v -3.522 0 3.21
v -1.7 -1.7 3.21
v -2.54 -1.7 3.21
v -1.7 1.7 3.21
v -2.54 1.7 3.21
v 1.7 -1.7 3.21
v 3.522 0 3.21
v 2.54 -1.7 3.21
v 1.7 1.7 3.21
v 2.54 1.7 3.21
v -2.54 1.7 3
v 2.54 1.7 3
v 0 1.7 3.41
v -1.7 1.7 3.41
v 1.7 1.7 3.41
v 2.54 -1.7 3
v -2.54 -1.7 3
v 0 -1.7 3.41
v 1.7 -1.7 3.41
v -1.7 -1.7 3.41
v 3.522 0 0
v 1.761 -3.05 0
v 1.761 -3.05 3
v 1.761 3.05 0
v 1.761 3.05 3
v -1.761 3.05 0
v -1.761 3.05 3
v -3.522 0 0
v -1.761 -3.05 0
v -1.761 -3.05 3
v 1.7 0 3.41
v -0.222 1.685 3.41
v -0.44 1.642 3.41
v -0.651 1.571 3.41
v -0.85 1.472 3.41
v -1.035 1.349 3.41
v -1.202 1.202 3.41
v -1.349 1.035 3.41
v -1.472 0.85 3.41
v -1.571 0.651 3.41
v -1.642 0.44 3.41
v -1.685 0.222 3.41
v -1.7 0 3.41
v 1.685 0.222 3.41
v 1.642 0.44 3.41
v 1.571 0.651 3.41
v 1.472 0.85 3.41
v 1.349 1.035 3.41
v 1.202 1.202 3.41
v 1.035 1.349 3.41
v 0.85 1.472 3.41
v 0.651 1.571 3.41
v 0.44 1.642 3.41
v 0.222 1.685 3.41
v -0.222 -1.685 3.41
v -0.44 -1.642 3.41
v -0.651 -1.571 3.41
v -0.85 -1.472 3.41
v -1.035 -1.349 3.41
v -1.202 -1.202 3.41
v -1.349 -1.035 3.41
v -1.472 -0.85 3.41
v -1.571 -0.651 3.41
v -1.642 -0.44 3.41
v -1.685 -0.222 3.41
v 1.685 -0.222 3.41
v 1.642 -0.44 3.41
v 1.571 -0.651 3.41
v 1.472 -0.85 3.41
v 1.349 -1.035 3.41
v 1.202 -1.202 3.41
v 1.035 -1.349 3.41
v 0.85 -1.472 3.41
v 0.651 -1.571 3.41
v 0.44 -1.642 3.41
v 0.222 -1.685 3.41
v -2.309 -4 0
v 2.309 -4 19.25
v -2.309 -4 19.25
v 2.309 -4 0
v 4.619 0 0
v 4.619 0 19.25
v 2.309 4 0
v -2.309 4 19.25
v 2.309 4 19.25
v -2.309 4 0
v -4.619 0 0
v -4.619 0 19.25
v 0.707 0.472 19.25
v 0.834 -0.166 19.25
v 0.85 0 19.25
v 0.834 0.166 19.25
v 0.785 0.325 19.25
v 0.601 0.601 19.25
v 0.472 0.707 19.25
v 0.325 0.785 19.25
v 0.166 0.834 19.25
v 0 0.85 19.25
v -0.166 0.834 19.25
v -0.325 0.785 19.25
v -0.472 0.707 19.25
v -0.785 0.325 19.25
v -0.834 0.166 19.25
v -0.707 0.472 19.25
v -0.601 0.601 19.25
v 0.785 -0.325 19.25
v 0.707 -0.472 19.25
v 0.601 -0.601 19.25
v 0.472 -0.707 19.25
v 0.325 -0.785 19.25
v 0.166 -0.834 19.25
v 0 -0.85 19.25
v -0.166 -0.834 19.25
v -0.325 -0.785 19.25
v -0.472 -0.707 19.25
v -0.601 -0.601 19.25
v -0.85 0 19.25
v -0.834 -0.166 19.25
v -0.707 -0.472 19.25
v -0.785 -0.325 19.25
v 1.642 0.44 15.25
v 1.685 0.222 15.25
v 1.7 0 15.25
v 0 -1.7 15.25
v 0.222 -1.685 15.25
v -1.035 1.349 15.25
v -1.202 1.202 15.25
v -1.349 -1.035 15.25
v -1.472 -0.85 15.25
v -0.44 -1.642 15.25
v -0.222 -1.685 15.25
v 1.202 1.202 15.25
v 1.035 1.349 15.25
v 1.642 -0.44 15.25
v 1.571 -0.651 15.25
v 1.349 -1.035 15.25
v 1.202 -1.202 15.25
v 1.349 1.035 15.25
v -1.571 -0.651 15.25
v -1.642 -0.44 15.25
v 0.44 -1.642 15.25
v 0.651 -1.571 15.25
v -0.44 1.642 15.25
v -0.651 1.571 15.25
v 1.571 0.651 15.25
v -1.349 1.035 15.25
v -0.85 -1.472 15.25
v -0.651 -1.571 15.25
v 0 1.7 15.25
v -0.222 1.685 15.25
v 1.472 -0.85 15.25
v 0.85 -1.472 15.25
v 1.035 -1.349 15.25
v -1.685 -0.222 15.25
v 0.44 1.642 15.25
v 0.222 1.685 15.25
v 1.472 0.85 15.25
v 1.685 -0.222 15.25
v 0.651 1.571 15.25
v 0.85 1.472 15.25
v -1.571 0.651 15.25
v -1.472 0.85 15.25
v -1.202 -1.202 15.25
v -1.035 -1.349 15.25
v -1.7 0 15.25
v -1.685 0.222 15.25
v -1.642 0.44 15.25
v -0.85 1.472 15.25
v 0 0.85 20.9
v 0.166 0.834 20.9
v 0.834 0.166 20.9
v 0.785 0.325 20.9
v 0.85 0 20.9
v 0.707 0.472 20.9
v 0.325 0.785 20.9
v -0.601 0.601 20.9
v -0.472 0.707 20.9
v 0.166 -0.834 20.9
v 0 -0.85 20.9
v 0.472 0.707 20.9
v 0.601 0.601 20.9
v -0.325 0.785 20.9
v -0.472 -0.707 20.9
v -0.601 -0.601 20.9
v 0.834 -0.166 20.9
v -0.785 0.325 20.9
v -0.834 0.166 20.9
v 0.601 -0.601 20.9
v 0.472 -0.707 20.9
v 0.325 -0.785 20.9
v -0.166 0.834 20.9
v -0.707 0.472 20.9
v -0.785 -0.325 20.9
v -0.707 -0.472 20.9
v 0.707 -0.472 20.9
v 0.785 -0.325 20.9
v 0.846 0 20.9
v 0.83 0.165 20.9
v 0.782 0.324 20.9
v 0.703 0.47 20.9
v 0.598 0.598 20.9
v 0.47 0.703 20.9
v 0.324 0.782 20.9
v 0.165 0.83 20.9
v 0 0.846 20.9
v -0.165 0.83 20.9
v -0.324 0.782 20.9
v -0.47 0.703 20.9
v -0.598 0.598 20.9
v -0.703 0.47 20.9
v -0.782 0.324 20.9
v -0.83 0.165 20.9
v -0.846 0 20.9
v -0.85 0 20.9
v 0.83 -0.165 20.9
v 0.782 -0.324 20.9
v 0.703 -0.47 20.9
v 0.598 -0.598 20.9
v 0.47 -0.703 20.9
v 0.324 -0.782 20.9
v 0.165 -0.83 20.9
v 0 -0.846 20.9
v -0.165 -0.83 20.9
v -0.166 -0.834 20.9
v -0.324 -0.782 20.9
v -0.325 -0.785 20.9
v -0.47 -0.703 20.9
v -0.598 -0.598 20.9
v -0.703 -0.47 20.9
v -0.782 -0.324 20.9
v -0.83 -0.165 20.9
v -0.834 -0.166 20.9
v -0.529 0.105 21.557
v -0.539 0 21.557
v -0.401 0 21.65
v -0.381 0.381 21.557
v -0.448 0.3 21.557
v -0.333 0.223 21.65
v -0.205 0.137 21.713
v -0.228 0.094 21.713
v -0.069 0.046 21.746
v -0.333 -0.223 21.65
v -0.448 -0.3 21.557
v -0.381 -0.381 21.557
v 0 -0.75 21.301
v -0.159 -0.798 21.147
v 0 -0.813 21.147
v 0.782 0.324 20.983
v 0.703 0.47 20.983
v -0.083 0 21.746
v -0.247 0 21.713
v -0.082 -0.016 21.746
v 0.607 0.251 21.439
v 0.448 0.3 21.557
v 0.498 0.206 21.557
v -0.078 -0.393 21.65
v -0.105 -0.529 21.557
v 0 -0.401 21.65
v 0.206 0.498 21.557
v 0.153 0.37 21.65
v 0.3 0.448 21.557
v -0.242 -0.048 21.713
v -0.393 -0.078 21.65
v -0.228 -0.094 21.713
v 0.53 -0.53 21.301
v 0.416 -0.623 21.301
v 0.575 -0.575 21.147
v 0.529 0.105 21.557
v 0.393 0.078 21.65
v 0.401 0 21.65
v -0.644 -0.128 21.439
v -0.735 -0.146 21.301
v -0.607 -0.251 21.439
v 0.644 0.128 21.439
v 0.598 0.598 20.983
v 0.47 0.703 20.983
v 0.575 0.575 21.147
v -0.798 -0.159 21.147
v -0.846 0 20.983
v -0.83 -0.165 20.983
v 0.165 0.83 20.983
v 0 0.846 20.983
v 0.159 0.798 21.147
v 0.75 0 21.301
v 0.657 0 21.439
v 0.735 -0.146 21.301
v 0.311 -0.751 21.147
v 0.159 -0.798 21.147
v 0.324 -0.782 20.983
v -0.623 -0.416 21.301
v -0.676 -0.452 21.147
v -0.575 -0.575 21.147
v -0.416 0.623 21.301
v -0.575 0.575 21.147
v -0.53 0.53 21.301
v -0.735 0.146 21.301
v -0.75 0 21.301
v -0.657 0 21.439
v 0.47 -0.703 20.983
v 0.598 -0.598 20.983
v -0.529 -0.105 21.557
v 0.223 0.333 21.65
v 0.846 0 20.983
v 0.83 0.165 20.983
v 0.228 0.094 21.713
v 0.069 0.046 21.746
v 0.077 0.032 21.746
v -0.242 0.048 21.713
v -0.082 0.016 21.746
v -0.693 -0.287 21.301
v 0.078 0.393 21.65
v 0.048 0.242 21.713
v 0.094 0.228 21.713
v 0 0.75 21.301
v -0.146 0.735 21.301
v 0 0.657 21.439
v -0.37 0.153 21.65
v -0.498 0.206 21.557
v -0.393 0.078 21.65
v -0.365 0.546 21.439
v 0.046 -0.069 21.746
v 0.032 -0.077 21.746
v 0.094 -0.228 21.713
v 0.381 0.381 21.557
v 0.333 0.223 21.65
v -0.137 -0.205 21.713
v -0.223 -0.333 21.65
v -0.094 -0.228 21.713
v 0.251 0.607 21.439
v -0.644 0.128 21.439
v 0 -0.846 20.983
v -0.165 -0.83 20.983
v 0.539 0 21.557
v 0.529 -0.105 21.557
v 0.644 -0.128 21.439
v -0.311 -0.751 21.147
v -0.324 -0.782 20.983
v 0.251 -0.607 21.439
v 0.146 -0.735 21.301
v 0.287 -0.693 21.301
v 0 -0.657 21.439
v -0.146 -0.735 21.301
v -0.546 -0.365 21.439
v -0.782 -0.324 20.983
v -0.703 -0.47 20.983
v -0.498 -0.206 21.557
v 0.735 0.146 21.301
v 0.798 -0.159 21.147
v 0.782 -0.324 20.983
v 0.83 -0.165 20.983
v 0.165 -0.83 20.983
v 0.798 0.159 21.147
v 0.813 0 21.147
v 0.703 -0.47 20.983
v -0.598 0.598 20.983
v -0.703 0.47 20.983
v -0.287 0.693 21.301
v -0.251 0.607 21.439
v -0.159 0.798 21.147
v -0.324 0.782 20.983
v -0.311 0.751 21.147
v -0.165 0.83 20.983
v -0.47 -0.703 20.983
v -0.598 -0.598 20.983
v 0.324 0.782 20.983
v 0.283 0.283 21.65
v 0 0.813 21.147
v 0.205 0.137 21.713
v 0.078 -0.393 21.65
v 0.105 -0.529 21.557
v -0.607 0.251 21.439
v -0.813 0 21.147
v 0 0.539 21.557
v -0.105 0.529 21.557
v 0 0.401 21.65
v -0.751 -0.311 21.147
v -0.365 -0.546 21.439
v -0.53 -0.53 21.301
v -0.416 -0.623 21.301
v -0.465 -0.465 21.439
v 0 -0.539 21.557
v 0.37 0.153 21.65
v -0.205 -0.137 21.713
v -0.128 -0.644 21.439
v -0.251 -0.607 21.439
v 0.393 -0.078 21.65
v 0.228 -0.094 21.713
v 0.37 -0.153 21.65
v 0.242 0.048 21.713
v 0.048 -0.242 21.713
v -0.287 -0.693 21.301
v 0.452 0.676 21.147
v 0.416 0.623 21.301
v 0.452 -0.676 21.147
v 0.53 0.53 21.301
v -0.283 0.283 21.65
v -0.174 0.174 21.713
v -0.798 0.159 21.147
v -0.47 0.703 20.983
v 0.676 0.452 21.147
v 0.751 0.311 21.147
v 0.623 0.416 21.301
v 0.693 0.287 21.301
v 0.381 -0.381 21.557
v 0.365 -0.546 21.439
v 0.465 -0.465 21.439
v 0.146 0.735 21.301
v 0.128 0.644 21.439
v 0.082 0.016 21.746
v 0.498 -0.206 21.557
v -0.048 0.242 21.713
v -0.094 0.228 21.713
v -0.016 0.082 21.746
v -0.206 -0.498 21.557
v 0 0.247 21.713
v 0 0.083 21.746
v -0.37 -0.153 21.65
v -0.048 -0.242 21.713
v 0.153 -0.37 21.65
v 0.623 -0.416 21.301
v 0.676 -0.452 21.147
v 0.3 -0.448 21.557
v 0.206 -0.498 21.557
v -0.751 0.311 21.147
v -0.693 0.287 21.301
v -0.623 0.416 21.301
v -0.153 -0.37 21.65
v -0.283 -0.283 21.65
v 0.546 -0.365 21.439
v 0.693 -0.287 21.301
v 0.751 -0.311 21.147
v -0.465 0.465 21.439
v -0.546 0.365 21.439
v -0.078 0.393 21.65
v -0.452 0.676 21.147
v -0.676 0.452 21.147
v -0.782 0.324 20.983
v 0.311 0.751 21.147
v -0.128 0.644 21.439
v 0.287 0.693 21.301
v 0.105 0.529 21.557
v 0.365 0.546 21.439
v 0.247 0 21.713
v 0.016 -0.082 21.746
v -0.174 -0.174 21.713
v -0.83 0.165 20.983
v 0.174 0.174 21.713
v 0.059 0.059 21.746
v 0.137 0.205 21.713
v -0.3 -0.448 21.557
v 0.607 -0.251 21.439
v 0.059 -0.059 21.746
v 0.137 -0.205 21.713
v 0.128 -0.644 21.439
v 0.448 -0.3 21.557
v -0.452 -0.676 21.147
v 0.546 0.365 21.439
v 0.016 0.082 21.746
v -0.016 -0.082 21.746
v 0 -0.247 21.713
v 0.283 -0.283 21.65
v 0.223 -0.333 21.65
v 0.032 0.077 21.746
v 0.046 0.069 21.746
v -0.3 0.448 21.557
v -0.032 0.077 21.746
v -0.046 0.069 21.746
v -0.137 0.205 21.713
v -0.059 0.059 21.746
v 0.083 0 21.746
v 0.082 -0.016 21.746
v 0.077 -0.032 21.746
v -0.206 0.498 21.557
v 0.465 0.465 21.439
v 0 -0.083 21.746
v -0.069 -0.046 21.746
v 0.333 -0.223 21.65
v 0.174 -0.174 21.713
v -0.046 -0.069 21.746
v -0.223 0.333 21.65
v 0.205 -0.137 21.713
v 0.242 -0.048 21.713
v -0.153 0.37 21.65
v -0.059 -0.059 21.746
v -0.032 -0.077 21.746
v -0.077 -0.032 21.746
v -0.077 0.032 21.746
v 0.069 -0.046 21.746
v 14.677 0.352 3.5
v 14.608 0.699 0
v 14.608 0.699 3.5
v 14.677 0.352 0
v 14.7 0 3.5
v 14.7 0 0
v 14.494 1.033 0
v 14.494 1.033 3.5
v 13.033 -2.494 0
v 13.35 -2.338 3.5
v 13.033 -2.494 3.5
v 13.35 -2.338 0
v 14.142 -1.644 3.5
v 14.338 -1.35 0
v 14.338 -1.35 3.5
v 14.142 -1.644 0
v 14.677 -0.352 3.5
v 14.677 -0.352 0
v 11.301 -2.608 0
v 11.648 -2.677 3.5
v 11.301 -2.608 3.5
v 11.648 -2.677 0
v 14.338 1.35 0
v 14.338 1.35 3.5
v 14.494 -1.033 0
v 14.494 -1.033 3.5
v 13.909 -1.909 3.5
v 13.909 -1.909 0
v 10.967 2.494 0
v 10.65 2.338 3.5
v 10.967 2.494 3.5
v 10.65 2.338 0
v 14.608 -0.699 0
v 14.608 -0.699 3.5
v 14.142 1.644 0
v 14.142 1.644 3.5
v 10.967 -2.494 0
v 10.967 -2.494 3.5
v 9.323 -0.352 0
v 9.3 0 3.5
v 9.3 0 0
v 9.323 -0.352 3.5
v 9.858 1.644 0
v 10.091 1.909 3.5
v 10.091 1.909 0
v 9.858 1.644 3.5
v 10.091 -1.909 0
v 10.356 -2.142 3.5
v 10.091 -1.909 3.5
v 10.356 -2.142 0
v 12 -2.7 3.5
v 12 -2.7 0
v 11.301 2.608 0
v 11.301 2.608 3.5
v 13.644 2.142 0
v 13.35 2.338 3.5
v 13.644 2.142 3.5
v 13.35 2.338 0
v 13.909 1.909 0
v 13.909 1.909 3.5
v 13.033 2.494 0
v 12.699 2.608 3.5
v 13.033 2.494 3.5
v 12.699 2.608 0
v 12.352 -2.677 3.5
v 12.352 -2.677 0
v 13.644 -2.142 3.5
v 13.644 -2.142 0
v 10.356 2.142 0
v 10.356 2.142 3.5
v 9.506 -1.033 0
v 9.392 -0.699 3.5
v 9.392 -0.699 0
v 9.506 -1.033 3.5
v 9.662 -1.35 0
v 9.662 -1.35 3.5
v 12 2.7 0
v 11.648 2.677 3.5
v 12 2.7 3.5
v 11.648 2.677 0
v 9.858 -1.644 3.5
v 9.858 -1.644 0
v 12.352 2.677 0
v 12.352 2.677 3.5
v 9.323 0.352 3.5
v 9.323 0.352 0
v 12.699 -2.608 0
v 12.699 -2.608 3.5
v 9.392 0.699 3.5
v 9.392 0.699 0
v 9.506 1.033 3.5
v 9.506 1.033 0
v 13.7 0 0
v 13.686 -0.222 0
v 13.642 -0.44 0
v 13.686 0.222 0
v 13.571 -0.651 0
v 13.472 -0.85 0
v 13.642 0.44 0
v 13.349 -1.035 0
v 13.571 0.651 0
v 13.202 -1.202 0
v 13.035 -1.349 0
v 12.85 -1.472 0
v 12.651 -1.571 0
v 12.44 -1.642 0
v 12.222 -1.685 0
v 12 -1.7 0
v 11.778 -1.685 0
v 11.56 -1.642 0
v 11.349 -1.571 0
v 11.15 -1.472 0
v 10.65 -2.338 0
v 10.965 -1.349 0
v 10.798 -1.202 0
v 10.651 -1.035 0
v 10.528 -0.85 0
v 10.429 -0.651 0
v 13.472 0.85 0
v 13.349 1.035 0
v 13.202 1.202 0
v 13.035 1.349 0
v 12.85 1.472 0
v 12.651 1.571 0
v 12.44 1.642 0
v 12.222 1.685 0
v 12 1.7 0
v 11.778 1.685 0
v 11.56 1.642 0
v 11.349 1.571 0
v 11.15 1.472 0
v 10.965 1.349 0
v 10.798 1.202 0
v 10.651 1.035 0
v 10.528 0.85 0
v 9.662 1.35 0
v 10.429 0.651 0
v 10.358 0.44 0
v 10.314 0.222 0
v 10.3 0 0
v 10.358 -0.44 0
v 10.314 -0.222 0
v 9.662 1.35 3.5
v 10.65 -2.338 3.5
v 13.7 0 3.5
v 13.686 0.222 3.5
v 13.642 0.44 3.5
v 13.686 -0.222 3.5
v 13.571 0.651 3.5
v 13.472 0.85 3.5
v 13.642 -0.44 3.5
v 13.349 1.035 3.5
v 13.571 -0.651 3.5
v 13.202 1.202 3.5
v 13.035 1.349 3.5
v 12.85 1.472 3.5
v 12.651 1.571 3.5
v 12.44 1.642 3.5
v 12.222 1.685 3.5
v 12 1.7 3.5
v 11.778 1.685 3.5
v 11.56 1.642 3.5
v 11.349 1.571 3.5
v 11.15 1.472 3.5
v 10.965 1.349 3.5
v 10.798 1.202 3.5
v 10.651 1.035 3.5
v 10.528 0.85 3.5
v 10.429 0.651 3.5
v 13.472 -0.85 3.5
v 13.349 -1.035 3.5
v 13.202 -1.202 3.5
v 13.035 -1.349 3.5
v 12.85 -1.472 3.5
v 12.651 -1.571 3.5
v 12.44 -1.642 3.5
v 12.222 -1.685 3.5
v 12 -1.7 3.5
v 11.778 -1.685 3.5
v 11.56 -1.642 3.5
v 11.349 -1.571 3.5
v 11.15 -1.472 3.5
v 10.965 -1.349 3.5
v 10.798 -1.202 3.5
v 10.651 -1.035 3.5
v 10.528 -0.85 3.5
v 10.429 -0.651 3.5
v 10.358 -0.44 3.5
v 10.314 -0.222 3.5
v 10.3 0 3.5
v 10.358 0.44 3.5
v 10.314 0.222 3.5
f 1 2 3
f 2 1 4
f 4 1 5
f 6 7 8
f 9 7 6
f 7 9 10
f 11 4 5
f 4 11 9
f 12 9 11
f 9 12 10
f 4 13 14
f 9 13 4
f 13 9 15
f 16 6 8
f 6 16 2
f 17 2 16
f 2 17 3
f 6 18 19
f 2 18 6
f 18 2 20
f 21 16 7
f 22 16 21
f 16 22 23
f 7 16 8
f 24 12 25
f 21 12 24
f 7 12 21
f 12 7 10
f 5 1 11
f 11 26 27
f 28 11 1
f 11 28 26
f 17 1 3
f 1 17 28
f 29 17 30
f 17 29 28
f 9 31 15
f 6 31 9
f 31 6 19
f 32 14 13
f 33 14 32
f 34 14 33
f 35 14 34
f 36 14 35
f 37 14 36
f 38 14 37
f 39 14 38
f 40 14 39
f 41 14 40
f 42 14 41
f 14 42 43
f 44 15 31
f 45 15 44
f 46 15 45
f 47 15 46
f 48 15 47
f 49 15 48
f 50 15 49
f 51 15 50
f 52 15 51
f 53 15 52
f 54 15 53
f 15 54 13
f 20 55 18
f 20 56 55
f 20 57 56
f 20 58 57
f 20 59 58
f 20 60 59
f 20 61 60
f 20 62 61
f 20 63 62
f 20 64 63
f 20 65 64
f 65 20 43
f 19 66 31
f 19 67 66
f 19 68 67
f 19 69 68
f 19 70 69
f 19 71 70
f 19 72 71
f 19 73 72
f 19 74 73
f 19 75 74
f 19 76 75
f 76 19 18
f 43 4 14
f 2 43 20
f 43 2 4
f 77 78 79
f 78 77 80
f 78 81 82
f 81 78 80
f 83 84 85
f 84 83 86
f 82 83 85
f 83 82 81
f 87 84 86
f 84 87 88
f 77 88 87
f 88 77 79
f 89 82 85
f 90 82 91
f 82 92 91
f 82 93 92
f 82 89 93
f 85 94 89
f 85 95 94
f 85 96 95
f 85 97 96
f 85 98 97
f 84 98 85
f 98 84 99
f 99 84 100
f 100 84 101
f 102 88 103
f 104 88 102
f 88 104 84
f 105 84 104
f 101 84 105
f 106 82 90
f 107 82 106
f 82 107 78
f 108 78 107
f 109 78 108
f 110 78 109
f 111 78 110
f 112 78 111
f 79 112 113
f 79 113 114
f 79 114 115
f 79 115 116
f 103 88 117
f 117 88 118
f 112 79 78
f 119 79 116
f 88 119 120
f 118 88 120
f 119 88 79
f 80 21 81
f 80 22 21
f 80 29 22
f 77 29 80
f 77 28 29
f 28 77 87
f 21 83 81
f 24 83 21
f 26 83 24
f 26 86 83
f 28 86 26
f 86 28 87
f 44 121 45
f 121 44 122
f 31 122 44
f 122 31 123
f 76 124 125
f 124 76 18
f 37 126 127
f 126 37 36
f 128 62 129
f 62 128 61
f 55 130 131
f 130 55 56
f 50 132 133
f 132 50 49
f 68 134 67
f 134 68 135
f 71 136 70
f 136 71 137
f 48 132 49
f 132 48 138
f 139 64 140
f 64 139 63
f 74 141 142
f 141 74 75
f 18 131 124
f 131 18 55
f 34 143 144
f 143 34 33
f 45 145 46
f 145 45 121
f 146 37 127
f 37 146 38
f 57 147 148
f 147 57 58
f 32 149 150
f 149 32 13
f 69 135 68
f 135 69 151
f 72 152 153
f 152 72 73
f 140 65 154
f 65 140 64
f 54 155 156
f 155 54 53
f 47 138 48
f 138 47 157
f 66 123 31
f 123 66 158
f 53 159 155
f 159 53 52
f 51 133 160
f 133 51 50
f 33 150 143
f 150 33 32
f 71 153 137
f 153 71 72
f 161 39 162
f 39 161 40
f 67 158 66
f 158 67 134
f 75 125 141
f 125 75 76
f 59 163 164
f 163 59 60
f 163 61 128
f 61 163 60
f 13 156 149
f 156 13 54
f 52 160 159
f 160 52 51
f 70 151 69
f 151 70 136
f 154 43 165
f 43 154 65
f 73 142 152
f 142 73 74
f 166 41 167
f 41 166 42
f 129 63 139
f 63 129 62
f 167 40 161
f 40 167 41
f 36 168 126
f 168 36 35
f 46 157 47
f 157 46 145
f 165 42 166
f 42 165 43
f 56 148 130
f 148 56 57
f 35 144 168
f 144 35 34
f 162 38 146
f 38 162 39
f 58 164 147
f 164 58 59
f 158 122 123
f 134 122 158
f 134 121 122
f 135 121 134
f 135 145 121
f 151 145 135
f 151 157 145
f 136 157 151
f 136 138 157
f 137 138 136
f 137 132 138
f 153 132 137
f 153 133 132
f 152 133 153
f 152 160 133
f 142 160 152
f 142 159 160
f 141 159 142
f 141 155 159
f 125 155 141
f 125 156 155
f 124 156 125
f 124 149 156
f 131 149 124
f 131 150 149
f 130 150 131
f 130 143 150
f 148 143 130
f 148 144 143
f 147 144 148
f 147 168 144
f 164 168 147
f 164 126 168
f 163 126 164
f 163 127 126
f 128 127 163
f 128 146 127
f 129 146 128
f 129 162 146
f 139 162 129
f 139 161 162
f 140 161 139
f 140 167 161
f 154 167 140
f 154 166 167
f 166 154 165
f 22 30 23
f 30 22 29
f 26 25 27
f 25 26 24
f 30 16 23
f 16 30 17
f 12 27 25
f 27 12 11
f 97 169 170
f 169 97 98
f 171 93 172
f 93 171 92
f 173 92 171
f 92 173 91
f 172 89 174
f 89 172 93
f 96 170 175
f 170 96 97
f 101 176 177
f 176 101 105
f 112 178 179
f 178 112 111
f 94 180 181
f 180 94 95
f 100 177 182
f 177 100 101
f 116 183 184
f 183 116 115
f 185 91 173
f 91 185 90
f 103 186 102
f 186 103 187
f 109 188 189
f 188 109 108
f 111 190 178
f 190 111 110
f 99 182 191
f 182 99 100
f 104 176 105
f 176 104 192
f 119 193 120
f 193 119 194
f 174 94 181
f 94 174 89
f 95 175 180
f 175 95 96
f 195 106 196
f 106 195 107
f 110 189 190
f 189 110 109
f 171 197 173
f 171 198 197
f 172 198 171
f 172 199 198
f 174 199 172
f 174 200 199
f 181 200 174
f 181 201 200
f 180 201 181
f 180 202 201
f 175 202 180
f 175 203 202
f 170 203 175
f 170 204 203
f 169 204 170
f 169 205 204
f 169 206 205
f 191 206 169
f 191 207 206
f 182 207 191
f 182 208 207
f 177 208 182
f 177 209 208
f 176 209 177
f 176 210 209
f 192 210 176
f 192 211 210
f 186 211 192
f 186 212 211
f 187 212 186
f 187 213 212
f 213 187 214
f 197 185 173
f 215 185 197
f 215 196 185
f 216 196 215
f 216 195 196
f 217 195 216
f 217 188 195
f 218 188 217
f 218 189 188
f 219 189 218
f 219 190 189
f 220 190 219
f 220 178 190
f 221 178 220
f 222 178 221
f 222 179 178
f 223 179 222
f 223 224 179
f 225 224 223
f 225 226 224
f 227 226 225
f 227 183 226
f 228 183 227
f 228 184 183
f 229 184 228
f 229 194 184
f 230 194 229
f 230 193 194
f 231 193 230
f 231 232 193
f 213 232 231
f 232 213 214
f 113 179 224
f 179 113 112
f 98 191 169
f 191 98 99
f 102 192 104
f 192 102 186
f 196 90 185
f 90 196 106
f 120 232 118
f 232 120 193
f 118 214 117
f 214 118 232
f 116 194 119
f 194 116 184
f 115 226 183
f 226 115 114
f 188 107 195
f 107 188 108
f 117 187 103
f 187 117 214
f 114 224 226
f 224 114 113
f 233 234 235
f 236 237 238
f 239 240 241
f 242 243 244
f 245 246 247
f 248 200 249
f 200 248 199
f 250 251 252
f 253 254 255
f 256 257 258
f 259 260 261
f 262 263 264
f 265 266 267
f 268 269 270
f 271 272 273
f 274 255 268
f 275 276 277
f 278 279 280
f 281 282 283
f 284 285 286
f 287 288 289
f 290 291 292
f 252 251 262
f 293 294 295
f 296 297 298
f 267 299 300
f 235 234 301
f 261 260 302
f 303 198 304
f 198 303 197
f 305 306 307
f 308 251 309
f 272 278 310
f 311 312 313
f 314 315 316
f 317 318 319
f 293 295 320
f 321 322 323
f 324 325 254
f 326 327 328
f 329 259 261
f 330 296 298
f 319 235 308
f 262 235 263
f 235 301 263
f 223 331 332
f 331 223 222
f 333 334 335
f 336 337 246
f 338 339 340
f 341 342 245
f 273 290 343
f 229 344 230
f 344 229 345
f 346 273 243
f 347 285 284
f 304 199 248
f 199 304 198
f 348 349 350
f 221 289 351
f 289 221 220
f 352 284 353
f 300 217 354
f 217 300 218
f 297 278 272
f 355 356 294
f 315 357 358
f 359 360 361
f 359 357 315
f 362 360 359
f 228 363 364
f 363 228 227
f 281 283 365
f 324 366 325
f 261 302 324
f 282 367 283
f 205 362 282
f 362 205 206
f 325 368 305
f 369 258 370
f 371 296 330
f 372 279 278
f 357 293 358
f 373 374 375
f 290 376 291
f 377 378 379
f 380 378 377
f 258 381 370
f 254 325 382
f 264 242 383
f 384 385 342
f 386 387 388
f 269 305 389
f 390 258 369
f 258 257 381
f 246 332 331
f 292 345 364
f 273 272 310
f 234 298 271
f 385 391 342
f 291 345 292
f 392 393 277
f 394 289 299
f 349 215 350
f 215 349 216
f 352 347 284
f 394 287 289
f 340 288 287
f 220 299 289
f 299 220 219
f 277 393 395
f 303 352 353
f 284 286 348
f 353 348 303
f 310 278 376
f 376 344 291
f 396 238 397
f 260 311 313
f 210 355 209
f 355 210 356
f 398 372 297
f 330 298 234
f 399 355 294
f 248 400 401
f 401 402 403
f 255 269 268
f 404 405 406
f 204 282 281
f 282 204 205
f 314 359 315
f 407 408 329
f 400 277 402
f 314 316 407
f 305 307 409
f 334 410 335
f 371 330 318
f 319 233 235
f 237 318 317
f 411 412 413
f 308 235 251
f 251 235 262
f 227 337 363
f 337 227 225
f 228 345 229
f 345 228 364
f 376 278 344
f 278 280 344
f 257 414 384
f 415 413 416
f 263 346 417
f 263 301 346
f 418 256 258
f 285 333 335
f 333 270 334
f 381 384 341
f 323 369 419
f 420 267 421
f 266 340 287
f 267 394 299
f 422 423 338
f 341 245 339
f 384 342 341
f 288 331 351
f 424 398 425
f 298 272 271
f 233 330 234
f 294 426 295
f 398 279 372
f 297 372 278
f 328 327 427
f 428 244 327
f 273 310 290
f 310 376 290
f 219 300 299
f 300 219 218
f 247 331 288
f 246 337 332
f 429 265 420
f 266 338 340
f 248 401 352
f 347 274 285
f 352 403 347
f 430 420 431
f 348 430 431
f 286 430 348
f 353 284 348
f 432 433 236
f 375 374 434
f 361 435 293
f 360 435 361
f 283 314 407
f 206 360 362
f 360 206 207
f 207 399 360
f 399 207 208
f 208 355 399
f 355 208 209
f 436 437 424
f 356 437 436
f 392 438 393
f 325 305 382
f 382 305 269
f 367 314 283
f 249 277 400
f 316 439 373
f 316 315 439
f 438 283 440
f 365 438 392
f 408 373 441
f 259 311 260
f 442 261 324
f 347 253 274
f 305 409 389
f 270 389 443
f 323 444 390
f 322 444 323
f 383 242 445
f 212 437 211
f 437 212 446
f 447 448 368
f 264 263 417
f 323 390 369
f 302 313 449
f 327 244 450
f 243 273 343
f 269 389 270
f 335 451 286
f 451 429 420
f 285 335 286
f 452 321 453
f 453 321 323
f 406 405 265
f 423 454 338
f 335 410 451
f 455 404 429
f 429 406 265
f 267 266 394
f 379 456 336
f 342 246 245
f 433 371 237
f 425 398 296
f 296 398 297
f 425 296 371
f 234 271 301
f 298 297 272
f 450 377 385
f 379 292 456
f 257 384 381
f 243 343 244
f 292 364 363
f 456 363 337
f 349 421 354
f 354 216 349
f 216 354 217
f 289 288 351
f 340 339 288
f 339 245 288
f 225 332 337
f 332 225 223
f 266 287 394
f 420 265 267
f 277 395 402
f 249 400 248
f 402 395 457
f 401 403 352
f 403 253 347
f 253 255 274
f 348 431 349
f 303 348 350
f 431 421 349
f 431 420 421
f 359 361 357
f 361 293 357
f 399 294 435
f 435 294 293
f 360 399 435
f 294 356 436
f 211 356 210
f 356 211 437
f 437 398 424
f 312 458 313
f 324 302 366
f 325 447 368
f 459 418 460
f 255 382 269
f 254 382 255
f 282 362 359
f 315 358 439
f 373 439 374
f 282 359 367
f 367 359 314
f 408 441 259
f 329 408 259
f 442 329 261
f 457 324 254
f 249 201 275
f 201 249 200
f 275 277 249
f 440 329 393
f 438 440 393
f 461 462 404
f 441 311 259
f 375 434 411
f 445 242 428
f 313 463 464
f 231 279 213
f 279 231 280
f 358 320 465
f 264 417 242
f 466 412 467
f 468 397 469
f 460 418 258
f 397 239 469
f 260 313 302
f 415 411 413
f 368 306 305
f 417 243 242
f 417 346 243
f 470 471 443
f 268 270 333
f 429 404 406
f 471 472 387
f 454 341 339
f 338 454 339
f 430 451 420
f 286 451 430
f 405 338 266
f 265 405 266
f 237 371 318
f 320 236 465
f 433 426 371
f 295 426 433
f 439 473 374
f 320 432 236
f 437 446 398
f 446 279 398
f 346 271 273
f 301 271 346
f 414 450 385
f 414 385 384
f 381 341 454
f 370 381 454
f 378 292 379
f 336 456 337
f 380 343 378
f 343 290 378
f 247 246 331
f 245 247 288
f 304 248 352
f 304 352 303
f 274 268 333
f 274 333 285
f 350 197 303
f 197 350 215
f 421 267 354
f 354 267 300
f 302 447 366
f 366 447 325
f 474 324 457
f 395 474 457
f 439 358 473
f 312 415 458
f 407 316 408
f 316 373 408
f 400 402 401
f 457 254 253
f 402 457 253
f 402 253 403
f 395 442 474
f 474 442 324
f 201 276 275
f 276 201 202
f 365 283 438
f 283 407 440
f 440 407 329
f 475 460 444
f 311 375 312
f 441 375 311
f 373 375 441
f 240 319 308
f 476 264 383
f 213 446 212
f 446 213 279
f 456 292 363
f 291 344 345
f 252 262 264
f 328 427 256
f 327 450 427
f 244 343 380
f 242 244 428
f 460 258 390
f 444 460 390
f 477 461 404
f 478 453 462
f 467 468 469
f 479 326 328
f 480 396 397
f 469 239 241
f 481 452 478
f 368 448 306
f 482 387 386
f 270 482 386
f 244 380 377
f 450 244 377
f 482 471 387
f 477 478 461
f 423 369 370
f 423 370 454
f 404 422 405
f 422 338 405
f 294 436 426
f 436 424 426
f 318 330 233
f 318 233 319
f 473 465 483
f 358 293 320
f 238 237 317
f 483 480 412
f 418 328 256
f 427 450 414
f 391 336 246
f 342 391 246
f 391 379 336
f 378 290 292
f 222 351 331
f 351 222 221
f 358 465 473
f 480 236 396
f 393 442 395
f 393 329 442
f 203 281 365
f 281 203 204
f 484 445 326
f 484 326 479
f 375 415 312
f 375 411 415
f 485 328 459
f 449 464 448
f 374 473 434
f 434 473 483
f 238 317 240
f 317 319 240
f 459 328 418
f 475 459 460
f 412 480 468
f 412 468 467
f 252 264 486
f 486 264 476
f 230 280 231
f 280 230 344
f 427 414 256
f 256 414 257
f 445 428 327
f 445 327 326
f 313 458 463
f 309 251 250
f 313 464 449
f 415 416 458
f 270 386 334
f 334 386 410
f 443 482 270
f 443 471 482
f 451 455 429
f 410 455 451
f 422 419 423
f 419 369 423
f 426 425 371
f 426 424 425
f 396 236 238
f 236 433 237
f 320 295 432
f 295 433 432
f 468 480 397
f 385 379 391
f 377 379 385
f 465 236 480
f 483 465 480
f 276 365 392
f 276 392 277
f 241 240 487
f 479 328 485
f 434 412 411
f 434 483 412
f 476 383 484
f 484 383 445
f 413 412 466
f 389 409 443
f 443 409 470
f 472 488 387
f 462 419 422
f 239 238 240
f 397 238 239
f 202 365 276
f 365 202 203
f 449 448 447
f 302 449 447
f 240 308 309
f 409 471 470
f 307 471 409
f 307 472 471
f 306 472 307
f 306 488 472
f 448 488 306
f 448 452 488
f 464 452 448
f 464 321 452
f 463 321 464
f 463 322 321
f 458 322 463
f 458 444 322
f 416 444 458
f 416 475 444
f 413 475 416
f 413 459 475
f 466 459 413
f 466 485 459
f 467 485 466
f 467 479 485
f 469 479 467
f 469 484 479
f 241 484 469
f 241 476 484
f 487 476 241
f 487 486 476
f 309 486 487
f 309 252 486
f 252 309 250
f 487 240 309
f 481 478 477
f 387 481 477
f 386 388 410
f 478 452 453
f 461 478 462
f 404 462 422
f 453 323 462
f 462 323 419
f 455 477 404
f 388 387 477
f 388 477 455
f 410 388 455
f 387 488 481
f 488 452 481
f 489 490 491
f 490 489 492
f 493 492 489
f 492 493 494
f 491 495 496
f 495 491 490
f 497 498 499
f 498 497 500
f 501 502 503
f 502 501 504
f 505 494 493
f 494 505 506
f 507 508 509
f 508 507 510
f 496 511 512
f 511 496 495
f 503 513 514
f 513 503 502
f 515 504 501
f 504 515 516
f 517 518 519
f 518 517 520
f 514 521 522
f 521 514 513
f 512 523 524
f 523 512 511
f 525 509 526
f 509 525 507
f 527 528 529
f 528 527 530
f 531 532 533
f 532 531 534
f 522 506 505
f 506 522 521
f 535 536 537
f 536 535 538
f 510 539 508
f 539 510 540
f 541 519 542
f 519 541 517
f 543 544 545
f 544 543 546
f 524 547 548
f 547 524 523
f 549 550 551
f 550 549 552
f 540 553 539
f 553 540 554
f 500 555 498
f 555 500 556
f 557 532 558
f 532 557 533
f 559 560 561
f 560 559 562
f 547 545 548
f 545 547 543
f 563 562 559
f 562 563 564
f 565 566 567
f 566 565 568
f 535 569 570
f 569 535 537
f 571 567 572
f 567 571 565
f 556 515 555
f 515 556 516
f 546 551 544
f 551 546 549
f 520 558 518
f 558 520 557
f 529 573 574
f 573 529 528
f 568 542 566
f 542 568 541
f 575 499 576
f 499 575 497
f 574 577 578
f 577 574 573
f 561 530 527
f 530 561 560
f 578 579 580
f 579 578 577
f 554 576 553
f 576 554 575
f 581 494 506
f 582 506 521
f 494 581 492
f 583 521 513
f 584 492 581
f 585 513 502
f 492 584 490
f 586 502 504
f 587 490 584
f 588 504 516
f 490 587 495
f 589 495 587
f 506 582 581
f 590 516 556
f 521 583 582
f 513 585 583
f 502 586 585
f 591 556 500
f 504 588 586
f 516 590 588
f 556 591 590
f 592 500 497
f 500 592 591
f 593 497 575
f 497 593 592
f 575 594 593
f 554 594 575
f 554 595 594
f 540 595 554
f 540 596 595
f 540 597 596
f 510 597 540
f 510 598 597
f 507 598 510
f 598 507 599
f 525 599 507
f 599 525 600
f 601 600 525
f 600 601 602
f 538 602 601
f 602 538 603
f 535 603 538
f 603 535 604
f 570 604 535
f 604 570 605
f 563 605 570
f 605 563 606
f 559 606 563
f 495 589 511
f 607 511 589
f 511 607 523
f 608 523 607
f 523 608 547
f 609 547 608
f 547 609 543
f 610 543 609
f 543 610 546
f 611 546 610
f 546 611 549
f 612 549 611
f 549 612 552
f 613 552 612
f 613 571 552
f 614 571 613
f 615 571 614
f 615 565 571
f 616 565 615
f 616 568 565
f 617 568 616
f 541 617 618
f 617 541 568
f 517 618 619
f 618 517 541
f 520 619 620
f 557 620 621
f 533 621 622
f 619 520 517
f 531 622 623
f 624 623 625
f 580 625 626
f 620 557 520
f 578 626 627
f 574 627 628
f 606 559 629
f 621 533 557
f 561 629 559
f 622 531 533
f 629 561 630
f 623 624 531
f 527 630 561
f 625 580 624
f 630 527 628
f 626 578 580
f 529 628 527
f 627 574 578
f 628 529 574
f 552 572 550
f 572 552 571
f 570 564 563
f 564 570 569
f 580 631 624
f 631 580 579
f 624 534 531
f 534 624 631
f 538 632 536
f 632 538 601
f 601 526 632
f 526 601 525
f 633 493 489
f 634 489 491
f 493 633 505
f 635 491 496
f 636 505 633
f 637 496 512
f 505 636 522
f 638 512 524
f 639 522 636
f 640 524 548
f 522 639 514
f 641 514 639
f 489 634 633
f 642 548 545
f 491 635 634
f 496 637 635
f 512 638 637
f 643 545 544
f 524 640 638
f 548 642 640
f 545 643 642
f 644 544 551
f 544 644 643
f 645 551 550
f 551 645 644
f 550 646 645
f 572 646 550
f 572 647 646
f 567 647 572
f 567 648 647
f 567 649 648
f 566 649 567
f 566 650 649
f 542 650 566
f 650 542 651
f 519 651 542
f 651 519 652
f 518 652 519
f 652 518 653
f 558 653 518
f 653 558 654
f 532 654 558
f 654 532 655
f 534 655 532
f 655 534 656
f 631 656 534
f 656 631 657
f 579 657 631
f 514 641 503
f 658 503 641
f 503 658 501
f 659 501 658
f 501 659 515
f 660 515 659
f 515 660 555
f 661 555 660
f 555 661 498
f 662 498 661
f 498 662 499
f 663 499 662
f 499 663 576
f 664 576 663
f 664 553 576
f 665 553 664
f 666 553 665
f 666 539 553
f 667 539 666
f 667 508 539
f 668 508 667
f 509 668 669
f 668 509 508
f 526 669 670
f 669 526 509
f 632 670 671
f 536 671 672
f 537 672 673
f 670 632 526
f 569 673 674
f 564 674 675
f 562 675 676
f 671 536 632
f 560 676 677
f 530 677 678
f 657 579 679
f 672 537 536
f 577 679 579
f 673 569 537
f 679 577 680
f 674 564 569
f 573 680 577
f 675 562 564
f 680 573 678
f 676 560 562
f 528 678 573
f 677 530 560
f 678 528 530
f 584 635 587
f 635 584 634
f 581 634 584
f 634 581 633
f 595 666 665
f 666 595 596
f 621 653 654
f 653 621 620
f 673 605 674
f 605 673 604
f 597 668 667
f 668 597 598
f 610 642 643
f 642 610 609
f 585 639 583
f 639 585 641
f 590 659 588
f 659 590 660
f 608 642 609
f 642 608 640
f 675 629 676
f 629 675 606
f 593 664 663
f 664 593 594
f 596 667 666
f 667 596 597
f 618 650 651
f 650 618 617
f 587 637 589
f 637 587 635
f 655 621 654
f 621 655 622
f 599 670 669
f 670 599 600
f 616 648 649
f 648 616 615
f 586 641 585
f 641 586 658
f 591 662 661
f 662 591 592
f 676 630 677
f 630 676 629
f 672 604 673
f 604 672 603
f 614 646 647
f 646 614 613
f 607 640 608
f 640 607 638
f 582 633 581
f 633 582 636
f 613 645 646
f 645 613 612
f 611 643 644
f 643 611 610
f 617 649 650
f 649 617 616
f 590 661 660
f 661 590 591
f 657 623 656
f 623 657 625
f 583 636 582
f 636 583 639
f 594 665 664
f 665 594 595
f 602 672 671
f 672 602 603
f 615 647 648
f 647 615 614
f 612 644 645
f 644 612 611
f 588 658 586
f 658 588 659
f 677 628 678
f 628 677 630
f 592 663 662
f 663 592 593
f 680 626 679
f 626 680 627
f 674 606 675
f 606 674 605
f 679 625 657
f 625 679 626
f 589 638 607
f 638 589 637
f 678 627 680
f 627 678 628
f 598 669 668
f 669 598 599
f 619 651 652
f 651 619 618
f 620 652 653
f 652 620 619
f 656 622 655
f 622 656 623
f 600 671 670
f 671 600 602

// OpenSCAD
// One printed coupler and a 3.5 mm stop sleeve. The pin on top of a coupler is the stylus.
// Use with the coupler table (table_coupler.scad).
include <../cad/punch_rig_020.scad>
PART = "coupler_parts";
